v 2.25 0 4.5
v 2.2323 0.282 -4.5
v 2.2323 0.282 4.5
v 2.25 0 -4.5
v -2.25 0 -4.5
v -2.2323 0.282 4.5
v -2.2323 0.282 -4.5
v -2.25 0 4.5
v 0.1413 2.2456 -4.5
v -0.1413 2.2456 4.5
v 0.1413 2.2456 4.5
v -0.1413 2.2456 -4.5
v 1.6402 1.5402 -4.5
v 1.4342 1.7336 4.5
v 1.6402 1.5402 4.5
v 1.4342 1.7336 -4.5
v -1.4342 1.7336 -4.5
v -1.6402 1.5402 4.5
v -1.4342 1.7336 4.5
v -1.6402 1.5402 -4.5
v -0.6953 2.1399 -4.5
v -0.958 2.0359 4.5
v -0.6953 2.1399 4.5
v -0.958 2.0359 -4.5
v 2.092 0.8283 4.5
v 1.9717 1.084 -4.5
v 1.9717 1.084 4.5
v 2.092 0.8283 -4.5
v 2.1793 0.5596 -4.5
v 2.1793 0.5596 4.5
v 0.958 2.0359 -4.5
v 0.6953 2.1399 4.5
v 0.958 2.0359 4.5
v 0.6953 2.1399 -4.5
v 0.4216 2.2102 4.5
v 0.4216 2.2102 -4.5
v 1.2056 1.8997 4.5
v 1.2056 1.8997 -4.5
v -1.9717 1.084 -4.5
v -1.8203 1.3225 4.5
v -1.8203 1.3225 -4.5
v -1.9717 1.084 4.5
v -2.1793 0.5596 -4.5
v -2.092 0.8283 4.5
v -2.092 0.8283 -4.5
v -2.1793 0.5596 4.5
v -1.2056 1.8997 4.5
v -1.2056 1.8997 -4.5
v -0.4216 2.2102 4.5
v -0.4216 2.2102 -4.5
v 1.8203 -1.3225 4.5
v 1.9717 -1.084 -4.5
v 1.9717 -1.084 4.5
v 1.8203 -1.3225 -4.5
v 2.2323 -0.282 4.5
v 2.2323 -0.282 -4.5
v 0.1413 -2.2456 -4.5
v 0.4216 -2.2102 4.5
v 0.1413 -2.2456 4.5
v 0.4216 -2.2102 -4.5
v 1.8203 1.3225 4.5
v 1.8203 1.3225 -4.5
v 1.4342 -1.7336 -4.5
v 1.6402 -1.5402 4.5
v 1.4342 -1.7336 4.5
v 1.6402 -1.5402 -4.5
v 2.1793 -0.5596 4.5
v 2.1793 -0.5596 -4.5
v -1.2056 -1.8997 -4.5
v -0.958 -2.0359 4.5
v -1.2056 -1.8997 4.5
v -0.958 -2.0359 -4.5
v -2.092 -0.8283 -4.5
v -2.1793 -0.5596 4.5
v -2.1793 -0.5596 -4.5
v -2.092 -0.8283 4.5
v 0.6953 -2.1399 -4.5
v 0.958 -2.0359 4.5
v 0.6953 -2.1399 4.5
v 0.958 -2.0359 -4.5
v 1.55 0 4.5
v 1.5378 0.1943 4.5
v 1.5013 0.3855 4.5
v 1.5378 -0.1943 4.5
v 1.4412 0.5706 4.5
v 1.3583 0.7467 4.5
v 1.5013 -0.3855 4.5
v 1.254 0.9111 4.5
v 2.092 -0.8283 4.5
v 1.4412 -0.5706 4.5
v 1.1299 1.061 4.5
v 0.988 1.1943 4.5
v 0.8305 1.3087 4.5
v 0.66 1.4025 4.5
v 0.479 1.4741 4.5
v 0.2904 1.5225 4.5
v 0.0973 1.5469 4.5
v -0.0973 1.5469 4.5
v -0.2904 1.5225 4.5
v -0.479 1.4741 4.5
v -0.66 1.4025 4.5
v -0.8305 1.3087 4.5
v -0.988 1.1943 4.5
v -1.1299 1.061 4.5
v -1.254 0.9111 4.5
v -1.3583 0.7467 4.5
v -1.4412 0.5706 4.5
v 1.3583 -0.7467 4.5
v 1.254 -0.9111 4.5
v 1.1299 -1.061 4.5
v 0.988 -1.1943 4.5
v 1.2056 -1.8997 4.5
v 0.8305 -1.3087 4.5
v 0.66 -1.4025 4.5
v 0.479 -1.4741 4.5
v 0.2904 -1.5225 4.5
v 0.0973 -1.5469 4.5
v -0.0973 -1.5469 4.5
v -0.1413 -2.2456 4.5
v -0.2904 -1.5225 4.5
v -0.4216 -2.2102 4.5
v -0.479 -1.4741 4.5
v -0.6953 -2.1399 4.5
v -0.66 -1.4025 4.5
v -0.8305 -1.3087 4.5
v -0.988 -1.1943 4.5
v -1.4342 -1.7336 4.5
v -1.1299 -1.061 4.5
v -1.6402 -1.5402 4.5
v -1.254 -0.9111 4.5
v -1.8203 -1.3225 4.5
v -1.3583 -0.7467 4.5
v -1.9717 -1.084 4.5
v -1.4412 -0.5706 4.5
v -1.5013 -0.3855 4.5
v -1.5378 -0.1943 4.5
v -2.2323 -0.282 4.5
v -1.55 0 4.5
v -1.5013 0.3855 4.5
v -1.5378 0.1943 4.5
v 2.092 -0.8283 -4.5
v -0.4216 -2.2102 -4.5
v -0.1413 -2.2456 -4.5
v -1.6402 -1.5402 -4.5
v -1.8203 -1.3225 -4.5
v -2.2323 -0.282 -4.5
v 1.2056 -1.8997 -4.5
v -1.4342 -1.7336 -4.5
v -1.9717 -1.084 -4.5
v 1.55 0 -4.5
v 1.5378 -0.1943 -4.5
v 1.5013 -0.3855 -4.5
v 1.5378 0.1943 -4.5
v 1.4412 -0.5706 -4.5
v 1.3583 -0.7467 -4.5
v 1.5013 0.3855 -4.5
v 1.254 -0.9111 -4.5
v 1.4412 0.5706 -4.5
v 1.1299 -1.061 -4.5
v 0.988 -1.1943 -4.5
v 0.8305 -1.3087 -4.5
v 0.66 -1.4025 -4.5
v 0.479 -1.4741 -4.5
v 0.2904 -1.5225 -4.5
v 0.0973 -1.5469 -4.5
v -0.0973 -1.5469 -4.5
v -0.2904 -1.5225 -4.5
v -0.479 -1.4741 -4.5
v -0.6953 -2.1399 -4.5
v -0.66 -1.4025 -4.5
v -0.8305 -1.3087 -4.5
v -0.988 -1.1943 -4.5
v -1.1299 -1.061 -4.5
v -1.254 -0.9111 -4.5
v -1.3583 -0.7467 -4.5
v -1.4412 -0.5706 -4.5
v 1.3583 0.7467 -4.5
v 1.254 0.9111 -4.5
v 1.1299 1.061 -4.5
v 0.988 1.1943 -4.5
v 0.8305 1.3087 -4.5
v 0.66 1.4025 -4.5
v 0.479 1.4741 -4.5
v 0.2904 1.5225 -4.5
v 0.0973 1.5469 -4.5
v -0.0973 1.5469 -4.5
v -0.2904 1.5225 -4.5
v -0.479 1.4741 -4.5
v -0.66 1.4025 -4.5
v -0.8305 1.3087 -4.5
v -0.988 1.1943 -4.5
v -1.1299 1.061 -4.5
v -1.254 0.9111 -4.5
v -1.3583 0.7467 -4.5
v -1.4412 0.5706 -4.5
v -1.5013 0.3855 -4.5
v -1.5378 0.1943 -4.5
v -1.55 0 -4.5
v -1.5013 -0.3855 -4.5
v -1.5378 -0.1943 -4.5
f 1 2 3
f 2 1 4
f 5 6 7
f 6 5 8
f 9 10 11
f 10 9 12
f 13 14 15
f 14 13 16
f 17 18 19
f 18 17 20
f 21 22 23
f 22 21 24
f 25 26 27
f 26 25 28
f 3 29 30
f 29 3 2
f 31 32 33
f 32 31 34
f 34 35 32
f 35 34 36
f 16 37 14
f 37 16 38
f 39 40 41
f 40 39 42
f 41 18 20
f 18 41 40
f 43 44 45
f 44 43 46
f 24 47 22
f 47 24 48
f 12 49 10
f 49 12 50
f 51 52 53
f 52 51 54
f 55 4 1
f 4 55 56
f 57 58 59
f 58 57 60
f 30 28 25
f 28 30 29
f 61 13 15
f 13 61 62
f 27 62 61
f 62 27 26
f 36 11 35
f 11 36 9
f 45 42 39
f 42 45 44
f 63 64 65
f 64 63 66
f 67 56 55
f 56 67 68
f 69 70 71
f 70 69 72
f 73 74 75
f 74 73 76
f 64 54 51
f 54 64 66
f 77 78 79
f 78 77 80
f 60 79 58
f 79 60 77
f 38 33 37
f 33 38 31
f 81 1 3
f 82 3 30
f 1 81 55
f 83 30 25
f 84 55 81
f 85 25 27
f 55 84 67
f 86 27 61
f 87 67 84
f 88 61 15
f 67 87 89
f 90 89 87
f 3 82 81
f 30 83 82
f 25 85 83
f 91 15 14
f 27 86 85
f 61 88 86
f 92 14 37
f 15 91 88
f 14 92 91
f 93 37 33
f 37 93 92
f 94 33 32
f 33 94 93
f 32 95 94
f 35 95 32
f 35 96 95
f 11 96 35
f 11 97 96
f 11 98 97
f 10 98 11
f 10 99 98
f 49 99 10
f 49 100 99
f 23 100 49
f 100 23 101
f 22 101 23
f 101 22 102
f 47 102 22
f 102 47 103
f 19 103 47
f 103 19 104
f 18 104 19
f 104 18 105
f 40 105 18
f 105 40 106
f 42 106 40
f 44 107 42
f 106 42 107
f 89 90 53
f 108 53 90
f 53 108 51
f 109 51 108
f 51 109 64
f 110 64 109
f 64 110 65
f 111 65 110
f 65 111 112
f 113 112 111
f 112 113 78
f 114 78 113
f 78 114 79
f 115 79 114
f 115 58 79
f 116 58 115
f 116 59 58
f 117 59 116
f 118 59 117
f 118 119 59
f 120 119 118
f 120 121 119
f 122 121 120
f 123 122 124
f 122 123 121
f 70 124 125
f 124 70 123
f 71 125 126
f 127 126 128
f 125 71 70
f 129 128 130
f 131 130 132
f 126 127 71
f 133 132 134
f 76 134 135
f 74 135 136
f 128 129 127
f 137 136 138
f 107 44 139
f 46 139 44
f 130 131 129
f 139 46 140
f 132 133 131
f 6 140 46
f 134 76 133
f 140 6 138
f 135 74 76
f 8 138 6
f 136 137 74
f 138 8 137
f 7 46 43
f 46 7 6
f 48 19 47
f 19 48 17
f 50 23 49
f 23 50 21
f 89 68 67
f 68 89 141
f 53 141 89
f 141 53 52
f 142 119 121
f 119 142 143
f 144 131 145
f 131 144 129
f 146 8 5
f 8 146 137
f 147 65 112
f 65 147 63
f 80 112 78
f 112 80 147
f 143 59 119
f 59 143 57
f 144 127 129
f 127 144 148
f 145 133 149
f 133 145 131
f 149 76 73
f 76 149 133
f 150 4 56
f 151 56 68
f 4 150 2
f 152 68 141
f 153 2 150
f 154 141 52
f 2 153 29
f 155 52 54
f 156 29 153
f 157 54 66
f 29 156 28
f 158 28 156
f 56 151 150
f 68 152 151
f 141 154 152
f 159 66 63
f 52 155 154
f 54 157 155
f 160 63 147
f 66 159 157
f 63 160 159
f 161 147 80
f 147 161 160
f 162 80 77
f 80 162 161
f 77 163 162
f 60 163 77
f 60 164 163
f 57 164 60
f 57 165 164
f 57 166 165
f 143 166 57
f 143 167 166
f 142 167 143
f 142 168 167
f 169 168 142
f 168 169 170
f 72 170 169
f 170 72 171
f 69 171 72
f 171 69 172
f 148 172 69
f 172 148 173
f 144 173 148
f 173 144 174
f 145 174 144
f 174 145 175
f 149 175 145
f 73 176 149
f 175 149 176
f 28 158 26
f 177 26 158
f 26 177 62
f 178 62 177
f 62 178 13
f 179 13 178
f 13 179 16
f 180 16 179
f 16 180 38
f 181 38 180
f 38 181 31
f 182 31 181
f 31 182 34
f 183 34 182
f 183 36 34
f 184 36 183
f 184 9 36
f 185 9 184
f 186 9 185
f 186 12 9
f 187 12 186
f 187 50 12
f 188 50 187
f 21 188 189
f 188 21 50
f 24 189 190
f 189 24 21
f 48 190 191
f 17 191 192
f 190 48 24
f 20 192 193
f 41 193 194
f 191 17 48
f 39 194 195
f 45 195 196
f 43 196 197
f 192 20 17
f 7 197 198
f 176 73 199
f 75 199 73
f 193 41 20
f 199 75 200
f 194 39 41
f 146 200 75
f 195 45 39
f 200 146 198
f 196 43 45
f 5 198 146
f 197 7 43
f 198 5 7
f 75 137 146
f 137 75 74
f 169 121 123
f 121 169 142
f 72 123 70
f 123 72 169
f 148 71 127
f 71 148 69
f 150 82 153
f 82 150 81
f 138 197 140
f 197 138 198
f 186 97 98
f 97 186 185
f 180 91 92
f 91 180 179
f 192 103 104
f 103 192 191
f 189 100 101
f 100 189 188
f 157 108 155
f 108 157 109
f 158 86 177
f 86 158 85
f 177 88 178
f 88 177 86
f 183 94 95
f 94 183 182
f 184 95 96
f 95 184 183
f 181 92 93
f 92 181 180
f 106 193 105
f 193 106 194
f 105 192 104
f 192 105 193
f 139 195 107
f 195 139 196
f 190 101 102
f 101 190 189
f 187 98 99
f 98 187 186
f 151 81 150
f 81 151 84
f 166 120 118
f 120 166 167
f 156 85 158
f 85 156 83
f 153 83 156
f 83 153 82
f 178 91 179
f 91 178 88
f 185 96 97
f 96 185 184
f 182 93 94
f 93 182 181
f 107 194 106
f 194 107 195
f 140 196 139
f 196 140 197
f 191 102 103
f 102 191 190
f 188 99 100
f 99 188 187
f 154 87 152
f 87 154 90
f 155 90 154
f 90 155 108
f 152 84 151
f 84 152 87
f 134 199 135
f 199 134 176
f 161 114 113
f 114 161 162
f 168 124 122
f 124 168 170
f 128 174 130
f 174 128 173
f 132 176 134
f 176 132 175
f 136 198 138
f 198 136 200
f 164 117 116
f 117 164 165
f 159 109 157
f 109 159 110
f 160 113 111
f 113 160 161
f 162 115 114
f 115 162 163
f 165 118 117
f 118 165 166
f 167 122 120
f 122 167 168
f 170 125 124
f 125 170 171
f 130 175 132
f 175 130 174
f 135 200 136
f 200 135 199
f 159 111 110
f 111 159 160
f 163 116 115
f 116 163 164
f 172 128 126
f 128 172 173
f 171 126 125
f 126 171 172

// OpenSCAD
$fn = 50;


difference() {
	union() {
		translate(v = [0, 0, -4.5000000000]) {
			cylinder(h = 9, r = 2.2500000000);
		}
	}
	union() {
		translate(v = [0, 0, -100.0000000000]) {
			cylinder(h = 200, r = 1.5500000000);
		}
	}
}
